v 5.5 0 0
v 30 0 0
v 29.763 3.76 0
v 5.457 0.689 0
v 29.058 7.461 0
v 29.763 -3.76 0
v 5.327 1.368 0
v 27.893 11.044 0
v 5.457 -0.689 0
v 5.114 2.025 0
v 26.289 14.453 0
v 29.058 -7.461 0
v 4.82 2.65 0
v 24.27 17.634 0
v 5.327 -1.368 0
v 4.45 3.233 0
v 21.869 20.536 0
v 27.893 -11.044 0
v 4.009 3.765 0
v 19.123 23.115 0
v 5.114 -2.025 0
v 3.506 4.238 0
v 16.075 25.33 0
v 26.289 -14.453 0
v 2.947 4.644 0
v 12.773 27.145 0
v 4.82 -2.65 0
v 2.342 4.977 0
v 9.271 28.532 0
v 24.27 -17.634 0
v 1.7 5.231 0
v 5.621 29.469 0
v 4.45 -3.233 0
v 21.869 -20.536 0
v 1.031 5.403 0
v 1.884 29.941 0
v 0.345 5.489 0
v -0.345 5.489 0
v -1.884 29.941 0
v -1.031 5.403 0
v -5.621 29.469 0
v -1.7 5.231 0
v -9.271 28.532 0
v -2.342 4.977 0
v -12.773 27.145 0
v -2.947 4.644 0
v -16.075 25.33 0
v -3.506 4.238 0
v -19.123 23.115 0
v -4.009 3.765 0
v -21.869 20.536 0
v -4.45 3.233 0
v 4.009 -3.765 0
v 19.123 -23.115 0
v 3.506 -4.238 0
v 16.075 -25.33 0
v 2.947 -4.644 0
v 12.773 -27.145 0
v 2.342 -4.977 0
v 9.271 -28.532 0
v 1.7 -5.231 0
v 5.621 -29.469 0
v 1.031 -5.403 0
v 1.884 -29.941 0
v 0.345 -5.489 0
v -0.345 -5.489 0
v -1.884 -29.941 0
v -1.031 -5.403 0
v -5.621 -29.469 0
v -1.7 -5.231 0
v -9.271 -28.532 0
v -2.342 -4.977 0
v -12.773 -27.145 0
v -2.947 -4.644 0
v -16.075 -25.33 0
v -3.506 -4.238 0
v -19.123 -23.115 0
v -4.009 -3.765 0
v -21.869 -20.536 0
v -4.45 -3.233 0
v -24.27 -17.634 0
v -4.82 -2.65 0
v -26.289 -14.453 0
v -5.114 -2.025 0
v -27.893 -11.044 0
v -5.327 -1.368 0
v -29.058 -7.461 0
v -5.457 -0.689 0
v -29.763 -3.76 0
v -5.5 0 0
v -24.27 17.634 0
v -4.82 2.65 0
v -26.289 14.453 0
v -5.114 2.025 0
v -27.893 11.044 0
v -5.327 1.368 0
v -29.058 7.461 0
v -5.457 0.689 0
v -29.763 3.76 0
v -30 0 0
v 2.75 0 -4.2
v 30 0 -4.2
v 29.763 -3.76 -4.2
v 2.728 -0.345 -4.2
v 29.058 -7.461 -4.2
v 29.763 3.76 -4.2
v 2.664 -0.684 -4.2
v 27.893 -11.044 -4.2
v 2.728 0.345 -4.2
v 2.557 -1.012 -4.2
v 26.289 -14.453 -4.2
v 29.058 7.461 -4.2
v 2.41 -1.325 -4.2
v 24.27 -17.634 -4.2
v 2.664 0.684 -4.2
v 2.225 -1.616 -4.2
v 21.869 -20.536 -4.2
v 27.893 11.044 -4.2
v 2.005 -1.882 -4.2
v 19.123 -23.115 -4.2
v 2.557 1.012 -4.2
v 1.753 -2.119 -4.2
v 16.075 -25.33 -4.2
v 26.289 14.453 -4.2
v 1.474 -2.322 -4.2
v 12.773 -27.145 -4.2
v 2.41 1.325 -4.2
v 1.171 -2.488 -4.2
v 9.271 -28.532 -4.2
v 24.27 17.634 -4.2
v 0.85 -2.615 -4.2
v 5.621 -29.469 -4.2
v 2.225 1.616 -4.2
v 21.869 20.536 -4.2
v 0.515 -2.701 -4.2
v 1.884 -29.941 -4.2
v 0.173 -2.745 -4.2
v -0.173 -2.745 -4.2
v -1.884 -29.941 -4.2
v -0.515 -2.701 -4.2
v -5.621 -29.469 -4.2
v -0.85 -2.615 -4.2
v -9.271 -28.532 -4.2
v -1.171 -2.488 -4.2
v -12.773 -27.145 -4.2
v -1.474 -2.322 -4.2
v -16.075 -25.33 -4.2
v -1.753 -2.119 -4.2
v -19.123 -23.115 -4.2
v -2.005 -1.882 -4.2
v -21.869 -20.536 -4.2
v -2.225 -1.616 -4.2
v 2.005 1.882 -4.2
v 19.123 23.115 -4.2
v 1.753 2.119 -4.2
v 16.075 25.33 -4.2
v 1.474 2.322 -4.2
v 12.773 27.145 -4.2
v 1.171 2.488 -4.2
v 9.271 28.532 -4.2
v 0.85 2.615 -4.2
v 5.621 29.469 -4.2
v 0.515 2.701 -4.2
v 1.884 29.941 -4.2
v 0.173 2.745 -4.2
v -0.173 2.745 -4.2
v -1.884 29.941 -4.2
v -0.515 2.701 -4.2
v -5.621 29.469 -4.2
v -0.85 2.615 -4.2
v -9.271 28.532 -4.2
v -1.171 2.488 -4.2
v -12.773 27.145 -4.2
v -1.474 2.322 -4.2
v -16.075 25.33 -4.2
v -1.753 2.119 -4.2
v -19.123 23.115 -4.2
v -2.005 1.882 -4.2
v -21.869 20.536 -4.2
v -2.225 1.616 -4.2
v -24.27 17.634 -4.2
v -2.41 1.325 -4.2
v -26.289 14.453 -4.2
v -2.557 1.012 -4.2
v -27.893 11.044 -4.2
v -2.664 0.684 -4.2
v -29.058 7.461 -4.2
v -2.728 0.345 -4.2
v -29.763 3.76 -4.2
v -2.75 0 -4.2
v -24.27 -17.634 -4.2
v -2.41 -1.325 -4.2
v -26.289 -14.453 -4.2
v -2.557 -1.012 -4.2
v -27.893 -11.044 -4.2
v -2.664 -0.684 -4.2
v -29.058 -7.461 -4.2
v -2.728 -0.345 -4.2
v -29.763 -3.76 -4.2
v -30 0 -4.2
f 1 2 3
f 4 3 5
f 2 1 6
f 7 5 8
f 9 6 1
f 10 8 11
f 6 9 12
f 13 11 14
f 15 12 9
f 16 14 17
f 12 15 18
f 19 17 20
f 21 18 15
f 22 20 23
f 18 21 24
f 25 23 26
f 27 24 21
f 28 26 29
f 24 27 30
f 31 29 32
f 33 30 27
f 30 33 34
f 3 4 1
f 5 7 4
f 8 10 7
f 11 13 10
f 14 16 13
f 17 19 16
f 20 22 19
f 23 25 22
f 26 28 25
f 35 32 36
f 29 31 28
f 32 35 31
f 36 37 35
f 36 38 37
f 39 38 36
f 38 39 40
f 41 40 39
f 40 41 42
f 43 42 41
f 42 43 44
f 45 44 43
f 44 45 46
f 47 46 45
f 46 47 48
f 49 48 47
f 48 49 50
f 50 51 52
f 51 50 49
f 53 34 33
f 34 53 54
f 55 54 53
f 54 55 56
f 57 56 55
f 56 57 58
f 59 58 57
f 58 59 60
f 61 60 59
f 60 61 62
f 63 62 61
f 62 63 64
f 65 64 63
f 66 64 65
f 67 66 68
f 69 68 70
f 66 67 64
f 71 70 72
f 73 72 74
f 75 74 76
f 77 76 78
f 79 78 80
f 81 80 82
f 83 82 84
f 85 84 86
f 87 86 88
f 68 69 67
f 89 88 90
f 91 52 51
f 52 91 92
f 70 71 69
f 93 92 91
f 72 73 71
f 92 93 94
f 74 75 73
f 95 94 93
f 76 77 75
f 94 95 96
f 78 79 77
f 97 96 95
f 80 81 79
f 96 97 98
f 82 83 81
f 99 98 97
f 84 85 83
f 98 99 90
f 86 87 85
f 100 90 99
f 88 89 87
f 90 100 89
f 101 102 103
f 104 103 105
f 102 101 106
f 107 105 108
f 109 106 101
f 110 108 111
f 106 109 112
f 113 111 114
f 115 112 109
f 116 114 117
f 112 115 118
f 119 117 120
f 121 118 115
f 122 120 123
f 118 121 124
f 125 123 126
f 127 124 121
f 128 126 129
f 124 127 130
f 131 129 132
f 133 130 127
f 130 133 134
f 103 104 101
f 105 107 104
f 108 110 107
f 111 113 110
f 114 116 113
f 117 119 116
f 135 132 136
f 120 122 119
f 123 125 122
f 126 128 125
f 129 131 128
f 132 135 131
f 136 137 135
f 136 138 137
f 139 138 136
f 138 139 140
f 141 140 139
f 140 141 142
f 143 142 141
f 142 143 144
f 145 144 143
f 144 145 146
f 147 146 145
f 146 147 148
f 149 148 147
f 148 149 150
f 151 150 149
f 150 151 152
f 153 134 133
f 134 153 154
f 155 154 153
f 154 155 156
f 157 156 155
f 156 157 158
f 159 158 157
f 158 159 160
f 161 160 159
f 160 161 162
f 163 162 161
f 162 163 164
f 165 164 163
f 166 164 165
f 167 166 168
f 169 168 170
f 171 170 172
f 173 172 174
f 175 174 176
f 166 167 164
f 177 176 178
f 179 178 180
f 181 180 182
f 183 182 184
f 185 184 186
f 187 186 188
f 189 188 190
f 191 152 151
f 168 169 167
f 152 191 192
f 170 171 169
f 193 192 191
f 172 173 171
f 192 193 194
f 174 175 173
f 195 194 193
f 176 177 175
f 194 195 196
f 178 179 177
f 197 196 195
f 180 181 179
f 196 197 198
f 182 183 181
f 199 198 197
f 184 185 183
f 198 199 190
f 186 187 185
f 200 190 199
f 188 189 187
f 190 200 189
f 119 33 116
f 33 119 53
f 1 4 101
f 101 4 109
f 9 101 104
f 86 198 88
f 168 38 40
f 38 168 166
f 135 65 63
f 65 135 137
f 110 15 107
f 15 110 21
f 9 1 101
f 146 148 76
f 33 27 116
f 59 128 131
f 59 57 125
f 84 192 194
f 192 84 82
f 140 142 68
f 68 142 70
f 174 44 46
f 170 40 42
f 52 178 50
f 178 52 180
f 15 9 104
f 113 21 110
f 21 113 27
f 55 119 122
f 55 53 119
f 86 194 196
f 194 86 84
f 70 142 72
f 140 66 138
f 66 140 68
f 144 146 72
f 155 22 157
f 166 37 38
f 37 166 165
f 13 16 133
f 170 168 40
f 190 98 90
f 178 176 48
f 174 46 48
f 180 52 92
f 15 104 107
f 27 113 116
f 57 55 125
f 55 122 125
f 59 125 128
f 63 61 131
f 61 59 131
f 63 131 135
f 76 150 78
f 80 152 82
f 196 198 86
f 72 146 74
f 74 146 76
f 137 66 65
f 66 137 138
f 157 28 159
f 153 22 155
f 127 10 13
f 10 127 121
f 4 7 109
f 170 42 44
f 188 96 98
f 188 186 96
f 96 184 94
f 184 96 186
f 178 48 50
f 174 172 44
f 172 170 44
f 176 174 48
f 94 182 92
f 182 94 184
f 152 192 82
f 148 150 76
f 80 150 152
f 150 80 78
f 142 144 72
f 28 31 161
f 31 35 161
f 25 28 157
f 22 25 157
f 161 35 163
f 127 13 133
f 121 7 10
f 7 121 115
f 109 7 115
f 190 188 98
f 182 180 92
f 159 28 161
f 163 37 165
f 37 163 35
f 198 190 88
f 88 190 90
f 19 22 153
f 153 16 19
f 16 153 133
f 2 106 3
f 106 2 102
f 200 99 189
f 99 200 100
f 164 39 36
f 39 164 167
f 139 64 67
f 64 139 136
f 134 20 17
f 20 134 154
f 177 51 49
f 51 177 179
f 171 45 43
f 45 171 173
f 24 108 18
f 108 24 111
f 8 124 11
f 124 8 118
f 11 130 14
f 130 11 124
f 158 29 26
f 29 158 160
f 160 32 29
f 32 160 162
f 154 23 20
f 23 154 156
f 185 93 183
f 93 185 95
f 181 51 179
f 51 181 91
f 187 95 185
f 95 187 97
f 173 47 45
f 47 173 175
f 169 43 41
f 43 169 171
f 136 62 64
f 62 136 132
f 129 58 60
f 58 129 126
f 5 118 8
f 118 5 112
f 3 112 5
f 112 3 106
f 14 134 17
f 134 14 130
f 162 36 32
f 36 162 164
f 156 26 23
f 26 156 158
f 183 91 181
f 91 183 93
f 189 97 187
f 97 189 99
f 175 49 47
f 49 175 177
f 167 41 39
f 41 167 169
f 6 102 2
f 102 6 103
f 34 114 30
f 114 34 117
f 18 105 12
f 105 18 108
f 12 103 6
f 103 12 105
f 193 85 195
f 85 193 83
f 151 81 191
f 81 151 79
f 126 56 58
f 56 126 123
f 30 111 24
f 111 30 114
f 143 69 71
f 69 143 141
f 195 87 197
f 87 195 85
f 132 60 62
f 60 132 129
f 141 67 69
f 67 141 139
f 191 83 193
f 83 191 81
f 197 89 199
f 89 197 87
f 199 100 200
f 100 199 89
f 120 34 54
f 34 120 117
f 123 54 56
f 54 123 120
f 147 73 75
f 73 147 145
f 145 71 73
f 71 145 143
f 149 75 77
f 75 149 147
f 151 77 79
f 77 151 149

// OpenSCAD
$fn = 50;


difference() {
	union() {
		translate(v = [0, 0, -4.2000000000]) {
			cylinder(h = 4.2000000000, r = 30.0000000000);
		}
	}
	union() {
		translate(v = [0, 0, 0]) {
			rotate(a = [0, 0, 0]) {
				difference() {
					union() {
						translate(v = [0, 0, -4.2000000000]) {
							cylinder(h = 4.2000000000, r = 2.2500000000);
						}
						translate(v = [0, 0, -4.2000000000]) {
							cylinder(h = 4.2000000000, r1 = 2.7500000000, r2 = 5.5000000000);
						}
						translate(v = [0, 0, -4.2000000000]) {
							cylinder(h = 4.2000000000, r = 2.7500000000);
						}
						translate(v = [0, 0, -4.2000000000]) {
							cylinder(h = 4.2000000000, r = 2.2500000000);
						}
					}
					union();
				}
			}
		}
	}
}
